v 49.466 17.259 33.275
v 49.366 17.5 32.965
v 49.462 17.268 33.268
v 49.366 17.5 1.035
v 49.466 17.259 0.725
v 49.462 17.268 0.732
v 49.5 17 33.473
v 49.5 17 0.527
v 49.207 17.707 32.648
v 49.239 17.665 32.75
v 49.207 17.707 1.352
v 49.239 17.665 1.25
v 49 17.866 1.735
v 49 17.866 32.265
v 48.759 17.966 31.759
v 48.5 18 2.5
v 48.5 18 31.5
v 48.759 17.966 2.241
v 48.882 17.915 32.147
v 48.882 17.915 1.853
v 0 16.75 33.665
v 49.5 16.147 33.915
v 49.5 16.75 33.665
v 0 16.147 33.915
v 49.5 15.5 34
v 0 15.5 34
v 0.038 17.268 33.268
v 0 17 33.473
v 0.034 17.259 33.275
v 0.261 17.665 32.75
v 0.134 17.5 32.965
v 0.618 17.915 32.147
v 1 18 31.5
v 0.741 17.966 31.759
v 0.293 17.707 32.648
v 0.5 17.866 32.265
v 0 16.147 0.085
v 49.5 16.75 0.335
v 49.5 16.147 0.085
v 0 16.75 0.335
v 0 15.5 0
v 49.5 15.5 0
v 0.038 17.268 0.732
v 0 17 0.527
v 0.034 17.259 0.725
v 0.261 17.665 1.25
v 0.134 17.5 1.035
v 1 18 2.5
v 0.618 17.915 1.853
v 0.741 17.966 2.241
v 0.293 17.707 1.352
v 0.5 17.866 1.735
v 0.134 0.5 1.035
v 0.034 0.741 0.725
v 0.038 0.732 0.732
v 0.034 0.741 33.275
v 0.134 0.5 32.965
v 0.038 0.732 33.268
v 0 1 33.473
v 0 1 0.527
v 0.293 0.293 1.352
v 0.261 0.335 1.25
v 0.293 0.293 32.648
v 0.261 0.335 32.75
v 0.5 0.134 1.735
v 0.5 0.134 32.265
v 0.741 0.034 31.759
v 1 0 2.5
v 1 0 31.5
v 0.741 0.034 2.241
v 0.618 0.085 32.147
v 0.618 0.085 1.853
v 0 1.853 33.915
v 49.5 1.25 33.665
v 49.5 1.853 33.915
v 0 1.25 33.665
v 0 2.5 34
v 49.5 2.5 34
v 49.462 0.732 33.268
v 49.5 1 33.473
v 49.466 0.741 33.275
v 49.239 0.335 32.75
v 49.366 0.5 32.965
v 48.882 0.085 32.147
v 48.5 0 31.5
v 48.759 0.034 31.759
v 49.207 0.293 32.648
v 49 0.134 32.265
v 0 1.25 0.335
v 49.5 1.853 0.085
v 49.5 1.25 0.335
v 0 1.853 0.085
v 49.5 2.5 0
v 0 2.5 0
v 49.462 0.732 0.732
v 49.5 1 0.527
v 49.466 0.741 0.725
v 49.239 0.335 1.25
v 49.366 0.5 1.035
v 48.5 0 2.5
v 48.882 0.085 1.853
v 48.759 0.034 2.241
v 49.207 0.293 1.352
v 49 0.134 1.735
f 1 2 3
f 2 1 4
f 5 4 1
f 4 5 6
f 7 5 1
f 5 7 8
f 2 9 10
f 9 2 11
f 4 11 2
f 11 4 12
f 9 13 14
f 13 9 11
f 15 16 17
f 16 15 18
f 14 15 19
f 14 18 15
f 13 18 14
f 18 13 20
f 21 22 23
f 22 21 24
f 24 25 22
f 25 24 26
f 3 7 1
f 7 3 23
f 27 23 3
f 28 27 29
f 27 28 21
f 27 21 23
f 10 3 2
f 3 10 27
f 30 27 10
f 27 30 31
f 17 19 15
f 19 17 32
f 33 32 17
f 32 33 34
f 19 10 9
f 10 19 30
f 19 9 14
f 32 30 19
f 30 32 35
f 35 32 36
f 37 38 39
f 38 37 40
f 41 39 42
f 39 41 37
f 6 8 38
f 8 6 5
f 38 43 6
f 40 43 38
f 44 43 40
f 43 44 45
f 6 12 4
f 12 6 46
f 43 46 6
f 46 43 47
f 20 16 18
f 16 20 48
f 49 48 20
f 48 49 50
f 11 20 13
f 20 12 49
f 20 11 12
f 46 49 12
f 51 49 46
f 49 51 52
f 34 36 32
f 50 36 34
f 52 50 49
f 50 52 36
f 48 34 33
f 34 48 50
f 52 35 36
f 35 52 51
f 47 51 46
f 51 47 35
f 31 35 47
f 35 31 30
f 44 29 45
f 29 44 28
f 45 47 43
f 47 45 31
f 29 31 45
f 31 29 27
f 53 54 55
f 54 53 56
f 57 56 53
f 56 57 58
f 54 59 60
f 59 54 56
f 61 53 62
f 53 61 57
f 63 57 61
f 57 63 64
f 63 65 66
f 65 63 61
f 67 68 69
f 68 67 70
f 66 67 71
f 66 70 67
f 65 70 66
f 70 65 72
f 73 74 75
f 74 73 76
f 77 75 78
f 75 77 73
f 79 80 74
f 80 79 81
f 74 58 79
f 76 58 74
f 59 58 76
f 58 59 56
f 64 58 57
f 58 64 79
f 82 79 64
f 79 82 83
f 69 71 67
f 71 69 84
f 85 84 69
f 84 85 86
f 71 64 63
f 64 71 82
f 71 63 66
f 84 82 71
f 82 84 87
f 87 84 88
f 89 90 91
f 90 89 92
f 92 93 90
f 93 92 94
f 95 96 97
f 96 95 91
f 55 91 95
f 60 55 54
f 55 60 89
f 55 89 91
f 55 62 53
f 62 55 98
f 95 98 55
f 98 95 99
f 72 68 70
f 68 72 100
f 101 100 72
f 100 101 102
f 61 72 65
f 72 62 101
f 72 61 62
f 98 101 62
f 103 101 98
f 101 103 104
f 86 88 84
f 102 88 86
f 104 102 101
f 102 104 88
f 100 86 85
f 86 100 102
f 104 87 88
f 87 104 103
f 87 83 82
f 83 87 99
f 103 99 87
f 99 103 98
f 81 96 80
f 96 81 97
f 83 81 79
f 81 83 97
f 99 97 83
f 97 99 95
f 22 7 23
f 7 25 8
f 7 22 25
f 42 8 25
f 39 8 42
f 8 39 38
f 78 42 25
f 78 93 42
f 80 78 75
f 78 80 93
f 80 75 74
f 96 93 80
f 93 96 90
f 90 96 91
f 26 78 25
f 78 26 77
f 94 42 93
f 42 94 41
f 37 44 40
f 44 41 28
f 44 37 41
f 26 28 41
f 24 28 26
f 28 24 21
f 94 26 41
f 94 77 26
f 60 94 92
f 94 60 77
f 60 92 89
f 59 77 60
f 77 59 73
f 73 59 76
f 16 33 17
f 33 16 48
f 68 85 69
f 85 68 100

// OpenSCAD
// file: ../libraries/misc/fillet.scad
// origin? https://github.com/arduino/Steelwonder/blob/master/plastic%20parts%20(source)/OpenSCAD/inc/functions.scad

module nut(d,h,horizontal=true){
    cornerdiameter =  (d / 2) / cos (180 / 6);
    cylinder(h = h, r = cornerdiameter, $fn = 6);
    if(horizontal){
        for(i = [1:6]){
            rotate([0,0,60*i]) translate([-cornerdiameter-0.2,0,0]) rotate([0,0,-45]) cube([2,2,h]);
        }
    }
}

module fillet(radius, height=100, $fn=$fn) {
  if (radius > 0) {
    //this creates acutal fillet
    translate([-radius, -radius, -height / 2 - 0.02]) difference() {
        cube([radius * 2, radius * 2, height + 0.04]);
        if ($fn == 0 && (radius == 2 || radius == 3 || radius == 4)) {
            cylinder(r=radius, h=height + 0.04, $fn=4 * radius);
        } else {
            cylinder(r=radius, h=height + 0.04, $fn=$fn);
        }

    }
  }
}

module cube_fillet(size, radius=-1, vertical=[0,0,0,0], top=[0,0,0,0], bottom=[0,0,0,0], center=false, $fn=4){
    if (center) {
        cube_fillet_inside(size, radius, vertical, top, bottom, $fn);
    } else {
        translate([size[0]/2, size[1]/2, size[2]/2])
            cube_fillet_inside(size, radius, vertical, top, bottom, $fn);
    }
}

module cube_negative_fillet(size, radius=-1, vertical=[3,3,3,3], top=[0,0,0,0], bottom=[0,0,0,0], $fn=$fn){
    j=[1,0,1,0];

    for (i=[0:3]) {
        if (radius > -1) {
            rotate([0, 0, 90*i]) translate([size[1-j[i]]/2, size[j[i]]/2, 0]) fillet(radius, size[2], $fn);
        } else {
            rotate([0, 0, 90*i]) translate([size[1-j[i]]/2, size[j[i]]/2, 0]) fillet(vertical[i], size[2], $fn);
        }
        rotate([90*i, -90, 0]) translate([size[2]/2, size[j[i]]/2, 0 ]) fillet(top[i], size[1-j[i]], $fn);
        rotate([90*(4-i), 90, 0]) translate([size[2]/2, size[j[i]]/2, 0]) fillet(bottom[i], size[1-j[i]], $fn);

    }
}

module cube_fillet_inside(size, radius=-1, vertical=[3,3,3,3], top=[0,0,0,0], bottom=[0,0,0,0], $fn=$fn){
    //makes CENTERED cube with round corners
    // if you give it radius, it will fillet vertical corners.
    //othervise use vertical, top, bottom arrays
    //when viewed from top, it starts in upper right corner (+x,+y quadrant) , goes counterclockwise
    //top/bottom fillet starts in direction of Y axis and goes CCW too

    if (radius == 0) {
        cube(size, center=true);
    } else {
        difference() {
            cube(size, center=true);
            cube_negative_fillet(size, radius, vertical, top, bottom, $fn);
        }
    }
}

//cube_fillet([10,10,10]);
// main file
////////////////////////////////////////////////////////////////////////
// Initial Revision:
//  2020-Nov-11
//
// Author:
//
//   David Crook <idcrook@users.noreply.github.com>
//
// Inspired by:
//
//   - Using iPhone in landscape while on a wireless charger stand
//
// Description:
//
//   A simple block sized to allow an Iphone 11 Pro (in case) to activate
//   wireless charging in landscape orientation in Choetech Fast Charge
//   Wireless Charger Stand.
//
//
// Revisions/Notes:
//
//  - Developed on OpenSCAD 2019.05, First Draft 2020-Nov-11
//
////////////////////////////////////////////////////////////////////////


include <../libraries/misc/fillet.scad>


e = 1/128; // small number


// Measurements
//

stand_width_at_base = 73.5;
stand_lip_depth_at_base = 13.0;
support_block_height = 34.0;


module charger_support_block() {

  bulk_block() ;
}

module bulk_block () {

    extra_depth = 5.0;  // stick out this much over lip
    width_reduction = 12.0; // inset this much from each side
    block_width  =  stand_width_at_base - (2*width_reduction);
    block_depth  =  stand_lip_depth_at_base + (extra_depth);
    block_height =  support_block_height;

    r = extra_depth / 2;

    //cube([block_width, block_depth, block_height]);

    // using fillets rounds corners and edges
    cube_fillet([block_width, block_depth, block_height],
                vertical = [1,1,1,1],
                top = [r, 0, r, 0],  bottom = [r, 0, r, 0], $fn = 24);

}


$fn = $preview ? 30 : 100;
charger_support_block();
